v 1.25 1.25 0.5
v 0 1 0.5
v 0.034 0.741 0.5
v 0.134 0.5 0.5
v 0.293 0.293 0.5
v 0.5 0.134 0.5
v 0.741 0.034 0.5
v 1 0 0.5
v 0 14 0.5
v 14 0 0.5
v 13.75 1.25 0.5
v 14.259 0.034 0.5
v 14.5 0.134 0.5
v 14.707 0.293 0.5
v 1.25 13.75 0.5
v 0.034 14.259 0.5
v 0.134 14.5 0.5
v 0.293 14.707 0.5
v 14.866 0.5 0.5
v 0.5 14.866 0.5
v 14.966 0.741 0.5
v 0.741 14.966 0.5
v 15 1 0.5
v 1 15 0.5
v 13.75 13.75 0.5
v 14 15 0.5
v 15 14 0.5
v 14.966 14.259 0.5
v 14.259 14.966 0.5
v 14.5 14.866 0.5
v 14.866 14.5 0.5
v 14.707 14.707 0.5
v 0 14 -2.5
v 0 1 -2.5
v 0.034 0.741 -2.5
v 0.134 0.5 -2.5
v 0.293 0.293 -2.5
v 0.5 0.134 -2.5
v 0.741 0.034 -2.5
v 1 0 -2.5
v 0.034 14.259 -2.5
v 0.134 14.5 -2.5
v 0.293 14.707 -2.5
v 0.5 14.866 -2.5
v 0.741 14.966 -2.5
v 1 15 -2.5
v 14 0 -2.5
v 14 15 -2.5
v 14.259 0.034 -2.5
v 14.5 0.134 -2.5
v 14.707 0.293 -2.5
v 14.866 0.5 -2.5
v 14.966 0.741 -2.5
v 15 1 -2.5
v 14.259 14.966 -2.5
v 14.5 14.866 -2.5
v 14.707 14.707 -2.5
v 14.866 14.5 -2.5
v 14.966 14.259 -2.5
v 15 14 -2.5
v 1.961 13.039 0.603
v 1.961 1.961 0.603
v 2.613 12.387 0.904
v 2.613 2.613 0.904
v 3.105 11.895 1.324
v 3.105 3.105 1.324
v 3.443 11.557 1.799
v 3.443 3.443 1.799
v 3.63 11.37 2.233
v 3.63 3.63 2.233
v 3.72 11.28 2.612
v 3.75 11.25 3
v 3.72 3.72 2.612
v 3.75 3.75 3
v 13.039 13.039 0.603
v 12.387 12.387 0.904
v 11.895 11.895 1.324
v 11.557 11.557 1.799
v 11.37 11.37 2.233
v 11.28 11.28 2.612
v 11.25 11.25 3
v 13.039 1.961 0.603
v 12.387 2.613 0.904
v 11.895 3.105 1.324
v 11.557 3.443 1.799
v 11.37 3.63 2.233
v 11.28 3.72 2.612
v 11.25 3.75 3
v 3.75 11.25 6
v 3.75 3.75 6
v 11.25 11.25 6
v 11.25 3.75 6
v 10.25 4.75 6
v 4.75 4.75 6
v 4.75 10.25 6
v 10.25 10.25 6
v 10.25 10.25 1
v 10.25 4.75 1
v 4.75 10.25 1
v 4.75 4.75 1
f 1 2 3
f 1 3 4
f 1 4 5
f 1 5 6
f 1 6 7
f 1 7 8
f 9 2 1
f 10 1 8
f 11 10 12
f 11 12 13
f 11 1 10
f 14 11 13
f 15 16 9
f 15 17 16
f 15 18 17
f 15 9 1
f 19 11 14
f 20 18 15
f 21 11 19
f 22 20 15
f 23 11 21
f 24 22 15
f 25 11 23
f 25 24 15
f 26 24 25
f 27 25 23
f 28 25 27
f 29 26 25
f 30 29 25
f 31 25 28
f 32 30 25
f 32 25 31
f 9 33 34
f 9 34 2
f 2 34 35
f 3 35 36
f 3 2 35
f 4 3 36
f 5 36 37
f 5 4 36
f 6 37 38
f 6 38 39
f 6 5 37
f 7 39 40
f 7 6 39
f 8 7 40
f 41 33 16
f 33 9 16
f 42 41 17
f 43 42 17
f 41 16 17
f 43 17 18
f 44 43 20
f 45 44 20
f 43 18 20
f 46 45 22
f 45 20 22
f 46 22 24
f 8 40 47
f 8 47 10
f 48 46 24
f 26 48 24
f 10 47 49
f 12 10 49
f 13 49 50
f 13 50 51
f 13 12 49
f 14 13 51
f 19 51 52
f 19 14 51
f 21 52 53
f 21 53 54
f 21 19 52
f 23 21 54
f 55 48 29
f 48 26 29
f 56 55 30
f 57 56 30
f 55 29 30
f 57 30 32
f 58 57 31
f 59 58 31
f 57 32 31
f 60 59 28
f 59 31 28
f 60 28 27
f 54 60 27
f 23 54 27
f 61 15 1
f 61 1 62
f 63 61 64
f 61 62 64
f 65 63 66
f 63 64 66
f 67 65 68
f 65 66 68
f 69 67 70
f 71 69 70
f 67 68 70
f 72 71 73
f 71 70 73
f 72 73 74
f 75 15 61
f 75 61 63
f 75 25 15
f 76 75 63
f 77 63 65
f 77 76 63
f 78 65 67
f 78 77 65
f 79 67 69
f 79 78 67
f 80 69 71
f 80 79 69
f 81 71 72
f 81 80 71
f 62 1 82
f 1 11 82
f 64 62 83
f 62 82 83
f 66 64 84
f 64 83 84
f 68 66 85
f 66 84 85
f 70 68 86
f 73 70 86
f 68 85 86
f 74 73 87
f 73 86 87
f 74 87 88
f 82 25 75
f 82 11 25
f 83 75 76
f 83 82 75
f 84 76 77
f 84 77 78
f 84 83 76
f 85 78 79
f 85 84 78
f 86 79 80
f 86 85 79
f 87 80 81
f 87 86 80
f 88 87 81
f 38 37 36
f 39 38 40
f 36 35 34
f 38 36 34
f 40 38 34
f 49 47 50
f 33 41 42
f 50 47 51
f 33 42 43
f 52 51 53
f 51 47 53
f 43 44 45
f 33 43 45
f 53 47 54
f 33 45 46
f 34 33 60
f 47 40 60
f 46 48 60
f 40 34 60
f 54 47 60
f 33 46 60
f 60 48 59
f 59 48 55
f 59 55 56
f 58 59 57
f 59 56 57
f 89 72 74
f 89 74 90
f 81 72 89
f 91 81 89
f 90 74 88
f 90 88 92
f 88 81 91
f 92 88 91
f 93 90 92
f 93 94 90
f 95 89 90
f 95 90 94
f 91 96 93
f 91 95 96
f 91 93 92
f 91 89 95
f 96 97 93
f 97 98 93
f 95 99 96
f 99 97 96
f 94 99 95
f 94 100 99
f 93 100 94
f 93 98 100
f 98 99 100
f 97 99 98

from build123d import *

# Parameters (mm, degrees)
BOX003_W     = 15
BOX003_H     = 15
BOX003_DEPTH = 3
BOX001_W     = 5.5
BOX001_H     = 5.5
BOX001_DEPTH = 6
BOX002_W     = 7.5
BOX002_H     = 7.5
BOX002_DEPTH = 6
FILLET_R     = 2.5
FILLET001_R  = 1


with BuildPart() as cube002:
    # Box003 → Box003 (new body)
    with BuildSketch(Plane.XY.offset(-2.5)):
        with Locations((7.5, 7.5)):
            Rectangle(BOX003_W, BOX003_H)
    extrude(amount=BOX003_DEPTH)


with BuildPart() as inf:
    # Box001 → Box001 (new body)
    with BuildSketch(Plane(origin=(1, 1, 1), x_dir=(1, 0, 0), z_dir=(0, 0, 1))):
        with Locations((2.75, 2.75)):
            Rectangle(BOX001_W, BOX001_H)
    extrude(amount=BOX001_DEPTH)


with BuildPart() as fillet001:
    # Box002 → Box002 (new body)
    with BuildSketch(Plane.XY):
        with Locations((3.75, 3.75)):
            Rectangle(BOX002_W, BOX002_H)
    extrude(amount=BOX002_DEPTH)

    # Cut001: cut inf
    add(inf.part, mode=Mode.SUBTRACT)


with BuildPart() as fillet001_1:
    # Cut001 placement: moved
    add(fillet001.part.moved(Location((3.75, 3.75, 0))))

    # Fusion: union Cube002
    add(cube002.part)

    # Fillet
    fillet_edges = [fillet001_1.edges().sort_by_distance(p)[0] for p in [
        (3.75, 7.5, 0.5),
        (7.5, 3.75, 0.5),
        (11.25, 7.5, 0.5),
        (7.5, 11.25, 0.5),
    ]]
    fillet(fillet_edges, radius=FILLET_R)

    # Fillet001
    fillet001_edges = [fillet001_1.edges().sort_by_distance(p)[0] for p in [
        (0, 0, -1),
        (0, 15, -1),
        (15, 15, -1),
        (15, 0, -1),
    ]]
    fillet(fillet001_edges, radius=FILLET001_R)


solid = fillet001_1.part
